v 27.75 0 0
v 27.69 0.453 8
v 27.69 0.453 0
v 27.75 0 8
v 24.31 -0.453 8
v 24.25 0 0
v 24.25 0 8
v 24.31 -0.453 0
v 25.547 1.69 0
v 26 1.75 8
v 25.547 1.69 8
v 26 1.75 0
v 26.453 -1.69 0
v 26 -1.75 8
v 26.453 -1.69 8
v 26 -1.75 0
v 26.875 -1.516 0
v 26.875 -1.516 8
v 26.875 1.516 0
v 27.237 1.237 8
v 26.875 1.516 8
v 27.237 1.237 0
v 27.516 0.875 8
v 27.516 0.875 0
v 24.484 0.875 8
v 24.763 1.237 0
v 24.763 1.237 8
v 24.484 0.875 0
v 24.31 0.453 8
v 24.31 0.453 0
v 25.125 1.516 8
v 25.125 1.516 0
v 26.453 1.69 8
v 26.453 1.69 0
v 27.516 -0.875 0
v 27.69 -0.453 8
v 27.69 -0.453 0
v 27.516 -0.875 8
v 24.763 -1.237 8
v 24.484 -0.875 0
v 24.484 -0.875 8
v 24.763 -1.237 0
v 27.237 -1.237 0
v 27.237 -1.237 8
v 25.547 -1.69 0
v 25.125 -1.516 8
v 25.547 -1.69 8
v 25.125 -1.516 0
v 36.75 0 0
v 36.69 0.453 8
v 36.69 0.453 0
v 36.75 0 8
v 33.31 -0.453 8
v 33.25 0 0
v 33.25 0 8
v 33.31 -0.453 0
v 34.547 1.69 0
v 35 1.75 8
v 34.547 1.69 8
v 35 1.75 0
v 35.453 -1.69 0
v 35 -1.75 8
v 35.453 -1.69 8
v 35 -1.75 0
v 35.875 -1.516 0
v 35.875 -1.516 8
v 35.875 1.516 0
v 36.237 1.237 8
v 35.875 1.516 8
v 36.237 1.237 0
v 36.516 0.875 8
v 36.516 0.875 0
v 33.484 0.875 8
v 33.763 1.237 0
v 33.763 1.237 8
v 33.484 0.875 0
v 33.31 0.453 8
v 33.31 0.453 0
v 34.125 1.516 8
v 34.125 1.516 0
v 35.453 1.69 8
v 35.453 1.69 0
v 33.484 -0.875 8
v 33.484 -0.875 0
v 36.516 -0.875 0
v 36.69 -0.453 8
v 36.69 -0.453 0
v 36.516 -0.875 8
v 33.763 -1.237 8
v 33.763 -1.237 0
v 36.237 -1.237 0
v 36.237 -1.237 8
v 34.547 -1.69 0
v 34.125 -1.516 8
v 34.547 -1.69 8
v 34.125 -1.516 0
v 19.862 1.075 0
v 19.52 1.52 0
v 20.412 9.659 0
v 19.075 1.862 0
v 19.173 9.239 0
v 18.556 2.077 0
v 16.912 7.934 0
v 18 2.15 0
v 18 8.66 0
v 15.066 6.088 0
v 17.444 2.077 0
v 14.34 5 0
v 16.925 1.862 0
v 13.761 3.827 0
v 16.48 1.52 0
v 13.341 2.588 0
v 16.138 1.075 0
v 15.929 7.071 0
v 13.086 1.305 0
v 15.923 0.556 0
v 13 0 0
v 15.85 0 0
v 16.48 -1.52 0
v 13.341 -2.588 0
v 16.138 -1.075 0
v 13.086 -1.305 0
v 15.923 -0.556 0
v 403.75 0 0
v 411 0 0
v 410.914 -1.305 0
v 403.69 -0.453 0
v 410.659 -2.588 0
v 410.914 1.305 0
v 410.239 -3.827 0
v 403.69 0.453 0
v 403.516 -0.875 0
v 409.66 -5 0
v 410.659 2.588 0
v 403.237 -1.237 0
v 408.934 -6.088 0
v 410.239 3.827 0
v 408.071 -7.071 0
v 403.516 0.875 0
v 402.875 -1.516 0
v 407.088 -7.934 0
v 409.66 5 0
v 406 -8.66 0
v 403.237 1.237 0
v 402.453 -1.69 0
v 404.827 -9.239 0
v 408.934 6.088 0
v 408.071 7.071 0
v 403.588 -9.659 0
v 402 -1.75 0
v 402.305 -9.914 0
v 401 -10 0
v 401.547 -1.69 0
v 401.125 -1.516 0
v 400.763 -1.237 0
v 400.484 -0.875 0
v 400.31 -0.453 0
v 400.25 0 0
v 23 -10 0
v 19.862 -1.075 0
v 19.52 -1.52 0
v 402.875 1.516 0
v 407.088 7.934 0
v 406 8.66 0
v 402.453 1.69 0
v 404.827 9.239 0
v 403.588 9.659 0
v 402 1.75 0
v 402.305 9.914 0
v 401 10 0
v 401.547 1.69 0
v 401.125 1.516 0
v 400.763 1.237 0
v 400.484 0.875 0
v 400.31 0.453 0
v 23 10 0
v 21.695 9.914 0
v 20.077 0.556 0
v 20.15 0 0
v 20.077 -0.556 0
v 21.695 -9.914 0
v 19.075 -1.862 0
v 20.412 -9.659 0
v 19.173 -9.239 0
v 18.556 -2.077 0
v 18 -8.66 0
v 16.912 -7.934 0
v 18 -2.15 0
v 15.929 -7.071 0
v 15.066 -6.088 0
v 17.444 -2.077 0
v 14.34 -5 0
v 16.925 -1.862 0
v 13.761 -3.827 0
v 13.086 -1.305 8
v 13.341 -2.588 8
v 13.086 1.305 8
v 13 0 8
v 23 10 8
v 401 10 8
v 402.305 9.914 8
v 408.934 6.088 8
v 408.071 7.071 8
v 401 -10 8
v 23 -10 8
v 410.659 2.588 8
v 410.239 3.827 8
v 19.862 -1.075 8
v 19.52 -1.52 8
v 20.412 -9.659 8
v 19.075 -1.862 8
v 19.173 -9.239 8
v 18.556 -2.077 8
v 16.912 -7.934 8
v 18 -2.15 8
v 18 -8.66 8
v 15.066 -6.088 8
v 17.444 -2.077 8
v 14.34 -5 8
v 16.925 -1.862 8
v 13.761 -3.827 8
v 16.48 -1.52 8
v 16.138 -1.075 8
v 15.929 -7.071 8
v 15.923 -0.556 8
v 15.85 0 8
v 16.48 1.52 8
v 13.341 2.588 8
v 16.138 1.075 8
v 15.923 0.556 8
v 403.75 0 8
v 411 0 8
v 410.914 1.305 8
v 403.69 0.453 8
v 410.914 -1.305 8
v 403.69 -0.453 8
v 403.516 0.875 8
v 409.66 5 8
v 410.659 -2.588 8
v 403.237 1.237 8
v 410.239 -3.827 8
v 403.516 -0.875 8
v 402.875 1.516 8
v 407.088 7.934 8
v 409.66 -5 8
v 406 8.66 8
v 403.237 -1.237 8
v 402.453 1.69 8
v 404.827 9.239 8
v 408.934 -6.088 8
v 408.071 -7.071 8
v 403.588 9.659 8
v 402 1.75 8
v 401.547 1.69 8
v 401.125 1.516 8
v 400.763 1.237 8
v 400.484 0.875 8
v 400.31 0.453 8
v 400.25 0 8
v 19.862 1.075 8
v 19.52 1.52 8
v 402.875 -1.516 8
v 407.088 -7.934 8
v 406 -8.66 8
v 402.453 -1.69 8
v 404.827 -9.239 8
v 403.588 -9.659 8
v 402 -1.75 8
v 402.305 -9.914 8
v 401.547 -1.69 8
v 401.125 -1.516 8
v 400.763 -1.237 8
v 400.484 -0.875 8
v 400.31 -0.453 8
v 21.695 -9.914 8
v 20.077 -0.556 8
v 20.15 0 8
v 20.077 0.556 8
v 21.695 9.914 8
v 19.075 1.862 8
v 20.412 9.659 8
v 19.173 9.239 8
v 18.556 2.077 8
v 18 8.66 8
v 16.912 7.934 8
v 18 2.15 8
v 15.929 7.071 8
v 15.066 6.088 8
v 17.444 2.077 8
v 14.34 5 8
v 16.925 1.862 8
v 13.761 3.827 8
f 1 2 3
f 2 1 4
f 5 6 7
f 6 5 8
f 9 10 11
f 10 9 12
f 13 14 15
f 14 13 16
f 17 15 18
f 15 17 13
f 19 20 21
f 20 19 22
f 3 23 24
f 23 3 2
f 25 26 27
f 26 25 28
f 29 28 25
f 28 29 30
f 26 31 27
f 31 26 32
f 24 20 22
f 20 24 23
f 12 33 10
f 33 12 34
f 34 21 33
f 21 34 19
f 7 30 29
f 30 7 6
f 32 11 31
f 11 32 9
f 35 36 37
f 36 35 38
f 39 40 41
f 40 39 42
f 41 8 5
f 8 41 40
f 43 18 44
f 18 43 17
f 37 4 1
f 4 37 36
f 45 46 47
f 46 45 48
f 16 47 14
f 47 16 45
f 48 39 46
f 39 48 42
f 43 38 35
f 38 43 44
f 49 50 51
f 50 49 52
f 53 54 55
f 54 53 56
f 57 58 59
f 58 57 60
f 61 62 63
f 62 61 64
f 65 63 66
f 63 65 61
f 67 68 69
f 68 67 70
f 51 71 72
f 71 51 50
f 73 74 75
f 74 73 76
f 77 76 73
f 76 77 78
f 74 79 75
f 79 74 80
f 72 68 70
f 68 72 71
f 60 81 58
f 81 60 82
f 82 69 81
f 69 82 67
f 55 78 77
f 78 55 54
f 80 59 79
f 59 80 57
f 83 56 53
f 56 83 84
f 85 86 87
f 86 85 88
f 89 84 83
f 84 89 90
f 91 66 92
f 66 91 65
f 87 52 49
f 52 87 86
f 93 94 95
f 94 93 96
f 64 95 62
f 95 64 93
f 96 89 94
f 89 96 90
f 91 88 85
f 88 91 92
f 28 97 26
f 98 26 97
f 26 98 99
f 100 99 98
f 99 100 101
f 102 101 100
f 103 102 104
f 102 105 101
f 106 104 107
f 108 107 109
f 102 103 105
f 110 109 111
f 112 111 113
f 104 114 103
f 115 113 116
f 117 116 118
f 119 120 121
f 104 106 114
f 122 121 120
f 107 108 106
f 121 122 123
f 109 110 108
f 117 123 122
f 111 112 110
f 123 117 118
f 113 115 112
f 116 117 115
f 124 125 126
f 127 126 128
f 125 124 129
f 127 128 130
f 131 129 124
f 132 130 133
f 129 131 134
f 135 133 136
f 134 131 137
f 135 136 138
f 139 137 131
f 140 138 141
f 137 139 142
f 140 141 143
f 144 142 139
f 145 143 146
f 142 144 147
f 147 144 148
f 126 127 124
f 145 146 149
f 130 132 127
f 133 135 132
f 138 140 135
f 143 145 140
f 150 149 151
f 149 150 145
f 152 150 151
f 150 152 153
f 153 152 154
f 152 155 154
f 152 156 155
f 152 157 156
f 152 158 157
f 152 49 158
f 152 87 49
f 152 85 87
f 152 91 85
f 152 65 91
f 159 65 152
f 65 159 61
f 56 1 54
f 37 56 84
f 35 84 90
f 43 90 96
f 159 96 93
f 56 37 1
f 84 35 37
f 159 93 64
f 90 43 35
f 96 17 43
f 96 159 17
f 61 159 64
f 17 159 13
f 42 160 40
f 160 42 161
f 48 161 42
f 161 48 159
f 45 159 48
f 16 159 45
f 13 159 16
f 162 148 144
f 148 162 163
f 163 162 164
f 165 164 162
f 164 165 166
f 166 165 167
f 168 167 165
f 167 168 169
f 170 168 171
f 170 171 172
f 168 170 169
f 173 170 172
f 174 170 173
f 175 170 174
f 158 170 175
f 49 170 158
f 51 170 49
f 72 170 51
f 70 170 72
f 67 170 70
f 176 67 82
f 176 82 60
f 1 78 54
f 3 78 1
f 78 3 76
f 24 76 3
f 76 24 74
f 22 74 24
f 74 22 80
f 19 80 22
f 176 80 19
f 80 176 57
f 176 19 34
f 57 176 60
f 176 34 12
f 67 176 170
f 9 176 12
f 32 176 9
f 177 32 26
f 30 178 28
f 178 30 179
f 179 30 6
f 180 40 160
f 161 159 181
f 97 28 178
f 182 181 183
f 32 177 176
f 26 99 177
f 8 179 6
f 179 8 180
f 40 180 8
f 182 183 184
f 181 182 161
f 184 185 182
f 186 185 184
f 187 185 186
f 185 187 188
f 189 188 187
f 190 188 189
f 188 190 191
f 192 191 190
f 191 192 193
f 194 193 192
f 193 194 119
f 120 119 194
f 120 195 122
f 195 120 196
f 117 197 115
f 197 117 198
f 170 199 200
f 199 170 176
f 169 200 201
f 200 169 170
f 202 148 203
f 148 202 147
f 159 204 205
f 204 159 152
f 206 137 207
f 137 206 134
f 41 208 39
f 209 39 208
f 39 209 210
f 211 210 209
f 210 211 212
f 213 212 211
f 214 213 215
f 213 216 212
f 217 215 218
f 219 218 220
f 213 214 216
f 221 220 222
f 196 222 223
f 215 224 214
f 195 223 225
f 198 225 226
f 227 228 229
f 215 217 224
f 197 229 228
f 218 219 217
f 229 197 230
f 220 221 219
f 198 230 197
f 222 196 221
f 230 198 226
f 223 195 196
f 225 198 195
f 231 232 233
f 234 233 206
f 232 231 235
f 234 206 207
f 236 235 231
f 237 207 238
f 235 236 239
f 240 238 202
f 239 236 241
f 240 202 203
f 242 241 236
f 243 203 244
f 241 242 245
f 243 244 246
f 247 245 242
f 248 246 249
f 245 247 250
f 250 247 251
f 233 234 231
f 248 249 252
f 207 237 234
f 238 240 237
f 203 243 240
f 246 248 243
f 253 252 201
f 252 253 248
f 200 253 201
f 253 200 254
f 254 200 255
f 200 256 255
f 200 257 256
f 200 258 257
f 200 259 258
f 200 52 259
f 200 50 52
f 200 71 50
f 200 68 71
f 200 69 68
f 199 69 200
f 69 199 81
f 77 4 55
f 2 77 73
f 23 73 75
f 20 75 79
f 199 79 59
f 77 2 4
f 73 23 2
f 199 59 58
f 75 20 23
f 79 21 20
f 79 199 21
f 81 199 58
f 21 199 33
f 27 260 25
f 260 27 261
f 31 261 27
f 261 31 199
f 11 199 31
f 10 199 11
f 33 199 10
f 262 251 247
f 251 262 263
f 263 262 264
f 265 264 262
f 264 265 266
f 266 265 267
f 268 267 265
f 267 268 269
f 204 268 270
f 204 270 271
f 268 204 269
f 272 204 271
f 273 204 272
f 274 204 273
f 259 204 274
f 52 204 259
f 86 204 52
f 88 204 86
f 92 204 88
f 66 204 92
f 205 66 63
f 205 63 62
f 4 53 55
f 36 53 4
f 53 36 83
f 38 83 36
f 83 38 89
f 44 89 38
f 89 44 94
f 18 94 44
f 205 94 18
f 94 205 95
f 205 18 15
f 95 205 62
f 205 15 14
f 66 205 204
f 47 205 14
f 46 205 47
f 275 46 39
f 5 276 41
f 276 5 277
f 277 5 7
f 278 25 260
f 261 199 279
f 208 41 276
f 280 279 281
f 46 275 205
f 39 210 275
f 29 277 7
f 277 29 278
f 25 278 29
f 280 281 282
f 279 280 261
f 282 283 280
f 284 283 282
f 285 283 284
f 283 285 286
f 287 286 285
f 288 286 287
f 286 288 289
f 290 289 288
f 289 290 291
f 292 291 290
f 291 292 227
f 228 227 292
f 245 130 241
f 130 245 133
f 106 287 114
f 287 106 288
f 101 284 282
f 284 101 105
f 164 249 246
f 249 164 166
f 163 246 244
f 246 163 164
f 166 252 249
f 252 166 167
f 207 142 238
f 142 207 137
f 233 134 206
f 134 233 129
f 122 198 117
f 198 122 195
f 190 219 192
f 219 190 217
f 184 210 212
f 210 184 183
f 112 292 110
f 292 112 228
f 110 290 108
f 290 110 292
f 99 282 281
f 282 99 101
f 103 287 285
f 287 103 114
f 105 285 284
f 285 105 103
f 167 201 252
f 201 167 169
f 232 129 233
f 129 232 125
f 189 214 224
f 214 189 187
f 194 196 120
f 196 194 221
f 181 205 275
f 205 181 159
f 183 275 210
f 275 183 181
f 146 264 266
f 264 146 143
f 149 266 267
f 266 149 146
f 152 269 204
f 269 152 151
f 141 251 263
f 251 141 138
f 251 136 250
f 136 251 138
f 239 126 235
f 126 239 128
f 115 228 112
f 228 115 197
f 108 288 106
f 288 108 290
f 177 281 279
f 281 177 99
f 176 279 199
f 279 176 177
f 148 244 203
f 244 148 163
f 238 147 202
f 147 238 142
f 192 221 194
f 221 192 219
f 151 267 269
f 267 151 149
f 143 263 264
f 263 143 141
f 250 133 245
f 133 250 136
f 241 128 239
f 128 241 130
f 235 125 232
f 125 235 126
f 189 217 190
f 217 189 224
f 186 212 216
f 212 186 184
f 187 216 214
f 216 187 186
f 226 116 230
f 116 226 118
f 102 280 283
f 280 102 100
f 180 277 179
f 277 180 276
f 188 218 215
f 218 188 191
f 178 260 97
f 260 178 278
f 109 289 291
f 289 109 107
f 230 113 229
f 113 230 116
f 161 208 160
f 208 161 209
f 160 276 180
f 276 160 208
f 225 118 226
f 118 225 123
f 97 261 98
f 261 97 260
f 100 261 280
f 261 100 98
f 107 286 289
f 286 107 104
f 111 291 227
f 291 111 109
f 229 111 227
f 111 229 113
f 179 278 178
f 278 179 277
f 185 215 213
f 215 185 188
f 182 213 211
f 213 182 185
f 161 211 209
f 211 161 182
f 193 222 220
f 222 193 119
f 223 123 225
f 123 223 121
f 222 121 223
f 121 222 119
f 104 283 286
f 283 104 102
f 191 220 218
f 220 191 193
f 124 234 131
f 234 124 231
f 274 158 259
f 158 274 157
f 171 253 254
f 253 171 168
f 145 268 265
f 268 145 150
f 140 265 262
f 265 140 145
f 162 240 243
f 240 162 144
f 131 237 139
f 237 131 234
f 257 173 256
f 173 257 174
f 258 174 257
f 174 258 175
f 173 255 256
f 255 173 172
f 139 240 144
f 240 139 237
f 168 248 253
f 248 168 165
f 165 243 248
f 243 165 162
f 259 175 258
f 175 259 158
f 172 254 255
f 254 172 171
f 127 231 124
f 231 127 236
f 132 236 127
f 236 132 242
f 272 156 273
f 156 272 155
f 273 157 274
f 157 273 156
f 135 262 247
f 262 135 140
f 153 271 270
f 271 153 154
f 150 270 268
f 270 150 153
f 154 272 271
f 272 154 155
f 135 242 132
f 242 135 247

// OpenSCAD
// Gen-EB — TOP SPIDER ARM (2026-11-02 pedestal frame). Print x3, flat. One arm per frame rod at arm_angles;
// inner end bolts on top of the spider hub (2x M3), outer end sits on a top standoff over the stator and is clamped by the frame-rod nut.
include <parameters.scad>;
$fn = 48;
arm_r0 = 13.0;   // inner end (clears the shaft + a drive coupling)
arm_r1 = flange_bolt_r + 9.0;
difference() {
    hull() {
        translate([arm_r0 + arm_w / 2, 0, 0]) cylinder(d=arm_w, h=arm_t);
        translate([arm_r1 - arm_w / 2, 0, 0]) cylinder(d=arm_w, h=arm_t);
    }
    for (r = arm_bolt_r) translate([r, 0, -0.1]) cylinder(d=m3_clear, h=arm_t + 1, $fn=24);
    translate([brace_r, 0, -0.1]) cylinder(d=brace_d, h=arm_t + 1, $fn=24);
    translate([flange_bolt_r, 0, -0.1]) cylinder(d=m3_clear, h=arm_t + 1, $fn=24);
}
